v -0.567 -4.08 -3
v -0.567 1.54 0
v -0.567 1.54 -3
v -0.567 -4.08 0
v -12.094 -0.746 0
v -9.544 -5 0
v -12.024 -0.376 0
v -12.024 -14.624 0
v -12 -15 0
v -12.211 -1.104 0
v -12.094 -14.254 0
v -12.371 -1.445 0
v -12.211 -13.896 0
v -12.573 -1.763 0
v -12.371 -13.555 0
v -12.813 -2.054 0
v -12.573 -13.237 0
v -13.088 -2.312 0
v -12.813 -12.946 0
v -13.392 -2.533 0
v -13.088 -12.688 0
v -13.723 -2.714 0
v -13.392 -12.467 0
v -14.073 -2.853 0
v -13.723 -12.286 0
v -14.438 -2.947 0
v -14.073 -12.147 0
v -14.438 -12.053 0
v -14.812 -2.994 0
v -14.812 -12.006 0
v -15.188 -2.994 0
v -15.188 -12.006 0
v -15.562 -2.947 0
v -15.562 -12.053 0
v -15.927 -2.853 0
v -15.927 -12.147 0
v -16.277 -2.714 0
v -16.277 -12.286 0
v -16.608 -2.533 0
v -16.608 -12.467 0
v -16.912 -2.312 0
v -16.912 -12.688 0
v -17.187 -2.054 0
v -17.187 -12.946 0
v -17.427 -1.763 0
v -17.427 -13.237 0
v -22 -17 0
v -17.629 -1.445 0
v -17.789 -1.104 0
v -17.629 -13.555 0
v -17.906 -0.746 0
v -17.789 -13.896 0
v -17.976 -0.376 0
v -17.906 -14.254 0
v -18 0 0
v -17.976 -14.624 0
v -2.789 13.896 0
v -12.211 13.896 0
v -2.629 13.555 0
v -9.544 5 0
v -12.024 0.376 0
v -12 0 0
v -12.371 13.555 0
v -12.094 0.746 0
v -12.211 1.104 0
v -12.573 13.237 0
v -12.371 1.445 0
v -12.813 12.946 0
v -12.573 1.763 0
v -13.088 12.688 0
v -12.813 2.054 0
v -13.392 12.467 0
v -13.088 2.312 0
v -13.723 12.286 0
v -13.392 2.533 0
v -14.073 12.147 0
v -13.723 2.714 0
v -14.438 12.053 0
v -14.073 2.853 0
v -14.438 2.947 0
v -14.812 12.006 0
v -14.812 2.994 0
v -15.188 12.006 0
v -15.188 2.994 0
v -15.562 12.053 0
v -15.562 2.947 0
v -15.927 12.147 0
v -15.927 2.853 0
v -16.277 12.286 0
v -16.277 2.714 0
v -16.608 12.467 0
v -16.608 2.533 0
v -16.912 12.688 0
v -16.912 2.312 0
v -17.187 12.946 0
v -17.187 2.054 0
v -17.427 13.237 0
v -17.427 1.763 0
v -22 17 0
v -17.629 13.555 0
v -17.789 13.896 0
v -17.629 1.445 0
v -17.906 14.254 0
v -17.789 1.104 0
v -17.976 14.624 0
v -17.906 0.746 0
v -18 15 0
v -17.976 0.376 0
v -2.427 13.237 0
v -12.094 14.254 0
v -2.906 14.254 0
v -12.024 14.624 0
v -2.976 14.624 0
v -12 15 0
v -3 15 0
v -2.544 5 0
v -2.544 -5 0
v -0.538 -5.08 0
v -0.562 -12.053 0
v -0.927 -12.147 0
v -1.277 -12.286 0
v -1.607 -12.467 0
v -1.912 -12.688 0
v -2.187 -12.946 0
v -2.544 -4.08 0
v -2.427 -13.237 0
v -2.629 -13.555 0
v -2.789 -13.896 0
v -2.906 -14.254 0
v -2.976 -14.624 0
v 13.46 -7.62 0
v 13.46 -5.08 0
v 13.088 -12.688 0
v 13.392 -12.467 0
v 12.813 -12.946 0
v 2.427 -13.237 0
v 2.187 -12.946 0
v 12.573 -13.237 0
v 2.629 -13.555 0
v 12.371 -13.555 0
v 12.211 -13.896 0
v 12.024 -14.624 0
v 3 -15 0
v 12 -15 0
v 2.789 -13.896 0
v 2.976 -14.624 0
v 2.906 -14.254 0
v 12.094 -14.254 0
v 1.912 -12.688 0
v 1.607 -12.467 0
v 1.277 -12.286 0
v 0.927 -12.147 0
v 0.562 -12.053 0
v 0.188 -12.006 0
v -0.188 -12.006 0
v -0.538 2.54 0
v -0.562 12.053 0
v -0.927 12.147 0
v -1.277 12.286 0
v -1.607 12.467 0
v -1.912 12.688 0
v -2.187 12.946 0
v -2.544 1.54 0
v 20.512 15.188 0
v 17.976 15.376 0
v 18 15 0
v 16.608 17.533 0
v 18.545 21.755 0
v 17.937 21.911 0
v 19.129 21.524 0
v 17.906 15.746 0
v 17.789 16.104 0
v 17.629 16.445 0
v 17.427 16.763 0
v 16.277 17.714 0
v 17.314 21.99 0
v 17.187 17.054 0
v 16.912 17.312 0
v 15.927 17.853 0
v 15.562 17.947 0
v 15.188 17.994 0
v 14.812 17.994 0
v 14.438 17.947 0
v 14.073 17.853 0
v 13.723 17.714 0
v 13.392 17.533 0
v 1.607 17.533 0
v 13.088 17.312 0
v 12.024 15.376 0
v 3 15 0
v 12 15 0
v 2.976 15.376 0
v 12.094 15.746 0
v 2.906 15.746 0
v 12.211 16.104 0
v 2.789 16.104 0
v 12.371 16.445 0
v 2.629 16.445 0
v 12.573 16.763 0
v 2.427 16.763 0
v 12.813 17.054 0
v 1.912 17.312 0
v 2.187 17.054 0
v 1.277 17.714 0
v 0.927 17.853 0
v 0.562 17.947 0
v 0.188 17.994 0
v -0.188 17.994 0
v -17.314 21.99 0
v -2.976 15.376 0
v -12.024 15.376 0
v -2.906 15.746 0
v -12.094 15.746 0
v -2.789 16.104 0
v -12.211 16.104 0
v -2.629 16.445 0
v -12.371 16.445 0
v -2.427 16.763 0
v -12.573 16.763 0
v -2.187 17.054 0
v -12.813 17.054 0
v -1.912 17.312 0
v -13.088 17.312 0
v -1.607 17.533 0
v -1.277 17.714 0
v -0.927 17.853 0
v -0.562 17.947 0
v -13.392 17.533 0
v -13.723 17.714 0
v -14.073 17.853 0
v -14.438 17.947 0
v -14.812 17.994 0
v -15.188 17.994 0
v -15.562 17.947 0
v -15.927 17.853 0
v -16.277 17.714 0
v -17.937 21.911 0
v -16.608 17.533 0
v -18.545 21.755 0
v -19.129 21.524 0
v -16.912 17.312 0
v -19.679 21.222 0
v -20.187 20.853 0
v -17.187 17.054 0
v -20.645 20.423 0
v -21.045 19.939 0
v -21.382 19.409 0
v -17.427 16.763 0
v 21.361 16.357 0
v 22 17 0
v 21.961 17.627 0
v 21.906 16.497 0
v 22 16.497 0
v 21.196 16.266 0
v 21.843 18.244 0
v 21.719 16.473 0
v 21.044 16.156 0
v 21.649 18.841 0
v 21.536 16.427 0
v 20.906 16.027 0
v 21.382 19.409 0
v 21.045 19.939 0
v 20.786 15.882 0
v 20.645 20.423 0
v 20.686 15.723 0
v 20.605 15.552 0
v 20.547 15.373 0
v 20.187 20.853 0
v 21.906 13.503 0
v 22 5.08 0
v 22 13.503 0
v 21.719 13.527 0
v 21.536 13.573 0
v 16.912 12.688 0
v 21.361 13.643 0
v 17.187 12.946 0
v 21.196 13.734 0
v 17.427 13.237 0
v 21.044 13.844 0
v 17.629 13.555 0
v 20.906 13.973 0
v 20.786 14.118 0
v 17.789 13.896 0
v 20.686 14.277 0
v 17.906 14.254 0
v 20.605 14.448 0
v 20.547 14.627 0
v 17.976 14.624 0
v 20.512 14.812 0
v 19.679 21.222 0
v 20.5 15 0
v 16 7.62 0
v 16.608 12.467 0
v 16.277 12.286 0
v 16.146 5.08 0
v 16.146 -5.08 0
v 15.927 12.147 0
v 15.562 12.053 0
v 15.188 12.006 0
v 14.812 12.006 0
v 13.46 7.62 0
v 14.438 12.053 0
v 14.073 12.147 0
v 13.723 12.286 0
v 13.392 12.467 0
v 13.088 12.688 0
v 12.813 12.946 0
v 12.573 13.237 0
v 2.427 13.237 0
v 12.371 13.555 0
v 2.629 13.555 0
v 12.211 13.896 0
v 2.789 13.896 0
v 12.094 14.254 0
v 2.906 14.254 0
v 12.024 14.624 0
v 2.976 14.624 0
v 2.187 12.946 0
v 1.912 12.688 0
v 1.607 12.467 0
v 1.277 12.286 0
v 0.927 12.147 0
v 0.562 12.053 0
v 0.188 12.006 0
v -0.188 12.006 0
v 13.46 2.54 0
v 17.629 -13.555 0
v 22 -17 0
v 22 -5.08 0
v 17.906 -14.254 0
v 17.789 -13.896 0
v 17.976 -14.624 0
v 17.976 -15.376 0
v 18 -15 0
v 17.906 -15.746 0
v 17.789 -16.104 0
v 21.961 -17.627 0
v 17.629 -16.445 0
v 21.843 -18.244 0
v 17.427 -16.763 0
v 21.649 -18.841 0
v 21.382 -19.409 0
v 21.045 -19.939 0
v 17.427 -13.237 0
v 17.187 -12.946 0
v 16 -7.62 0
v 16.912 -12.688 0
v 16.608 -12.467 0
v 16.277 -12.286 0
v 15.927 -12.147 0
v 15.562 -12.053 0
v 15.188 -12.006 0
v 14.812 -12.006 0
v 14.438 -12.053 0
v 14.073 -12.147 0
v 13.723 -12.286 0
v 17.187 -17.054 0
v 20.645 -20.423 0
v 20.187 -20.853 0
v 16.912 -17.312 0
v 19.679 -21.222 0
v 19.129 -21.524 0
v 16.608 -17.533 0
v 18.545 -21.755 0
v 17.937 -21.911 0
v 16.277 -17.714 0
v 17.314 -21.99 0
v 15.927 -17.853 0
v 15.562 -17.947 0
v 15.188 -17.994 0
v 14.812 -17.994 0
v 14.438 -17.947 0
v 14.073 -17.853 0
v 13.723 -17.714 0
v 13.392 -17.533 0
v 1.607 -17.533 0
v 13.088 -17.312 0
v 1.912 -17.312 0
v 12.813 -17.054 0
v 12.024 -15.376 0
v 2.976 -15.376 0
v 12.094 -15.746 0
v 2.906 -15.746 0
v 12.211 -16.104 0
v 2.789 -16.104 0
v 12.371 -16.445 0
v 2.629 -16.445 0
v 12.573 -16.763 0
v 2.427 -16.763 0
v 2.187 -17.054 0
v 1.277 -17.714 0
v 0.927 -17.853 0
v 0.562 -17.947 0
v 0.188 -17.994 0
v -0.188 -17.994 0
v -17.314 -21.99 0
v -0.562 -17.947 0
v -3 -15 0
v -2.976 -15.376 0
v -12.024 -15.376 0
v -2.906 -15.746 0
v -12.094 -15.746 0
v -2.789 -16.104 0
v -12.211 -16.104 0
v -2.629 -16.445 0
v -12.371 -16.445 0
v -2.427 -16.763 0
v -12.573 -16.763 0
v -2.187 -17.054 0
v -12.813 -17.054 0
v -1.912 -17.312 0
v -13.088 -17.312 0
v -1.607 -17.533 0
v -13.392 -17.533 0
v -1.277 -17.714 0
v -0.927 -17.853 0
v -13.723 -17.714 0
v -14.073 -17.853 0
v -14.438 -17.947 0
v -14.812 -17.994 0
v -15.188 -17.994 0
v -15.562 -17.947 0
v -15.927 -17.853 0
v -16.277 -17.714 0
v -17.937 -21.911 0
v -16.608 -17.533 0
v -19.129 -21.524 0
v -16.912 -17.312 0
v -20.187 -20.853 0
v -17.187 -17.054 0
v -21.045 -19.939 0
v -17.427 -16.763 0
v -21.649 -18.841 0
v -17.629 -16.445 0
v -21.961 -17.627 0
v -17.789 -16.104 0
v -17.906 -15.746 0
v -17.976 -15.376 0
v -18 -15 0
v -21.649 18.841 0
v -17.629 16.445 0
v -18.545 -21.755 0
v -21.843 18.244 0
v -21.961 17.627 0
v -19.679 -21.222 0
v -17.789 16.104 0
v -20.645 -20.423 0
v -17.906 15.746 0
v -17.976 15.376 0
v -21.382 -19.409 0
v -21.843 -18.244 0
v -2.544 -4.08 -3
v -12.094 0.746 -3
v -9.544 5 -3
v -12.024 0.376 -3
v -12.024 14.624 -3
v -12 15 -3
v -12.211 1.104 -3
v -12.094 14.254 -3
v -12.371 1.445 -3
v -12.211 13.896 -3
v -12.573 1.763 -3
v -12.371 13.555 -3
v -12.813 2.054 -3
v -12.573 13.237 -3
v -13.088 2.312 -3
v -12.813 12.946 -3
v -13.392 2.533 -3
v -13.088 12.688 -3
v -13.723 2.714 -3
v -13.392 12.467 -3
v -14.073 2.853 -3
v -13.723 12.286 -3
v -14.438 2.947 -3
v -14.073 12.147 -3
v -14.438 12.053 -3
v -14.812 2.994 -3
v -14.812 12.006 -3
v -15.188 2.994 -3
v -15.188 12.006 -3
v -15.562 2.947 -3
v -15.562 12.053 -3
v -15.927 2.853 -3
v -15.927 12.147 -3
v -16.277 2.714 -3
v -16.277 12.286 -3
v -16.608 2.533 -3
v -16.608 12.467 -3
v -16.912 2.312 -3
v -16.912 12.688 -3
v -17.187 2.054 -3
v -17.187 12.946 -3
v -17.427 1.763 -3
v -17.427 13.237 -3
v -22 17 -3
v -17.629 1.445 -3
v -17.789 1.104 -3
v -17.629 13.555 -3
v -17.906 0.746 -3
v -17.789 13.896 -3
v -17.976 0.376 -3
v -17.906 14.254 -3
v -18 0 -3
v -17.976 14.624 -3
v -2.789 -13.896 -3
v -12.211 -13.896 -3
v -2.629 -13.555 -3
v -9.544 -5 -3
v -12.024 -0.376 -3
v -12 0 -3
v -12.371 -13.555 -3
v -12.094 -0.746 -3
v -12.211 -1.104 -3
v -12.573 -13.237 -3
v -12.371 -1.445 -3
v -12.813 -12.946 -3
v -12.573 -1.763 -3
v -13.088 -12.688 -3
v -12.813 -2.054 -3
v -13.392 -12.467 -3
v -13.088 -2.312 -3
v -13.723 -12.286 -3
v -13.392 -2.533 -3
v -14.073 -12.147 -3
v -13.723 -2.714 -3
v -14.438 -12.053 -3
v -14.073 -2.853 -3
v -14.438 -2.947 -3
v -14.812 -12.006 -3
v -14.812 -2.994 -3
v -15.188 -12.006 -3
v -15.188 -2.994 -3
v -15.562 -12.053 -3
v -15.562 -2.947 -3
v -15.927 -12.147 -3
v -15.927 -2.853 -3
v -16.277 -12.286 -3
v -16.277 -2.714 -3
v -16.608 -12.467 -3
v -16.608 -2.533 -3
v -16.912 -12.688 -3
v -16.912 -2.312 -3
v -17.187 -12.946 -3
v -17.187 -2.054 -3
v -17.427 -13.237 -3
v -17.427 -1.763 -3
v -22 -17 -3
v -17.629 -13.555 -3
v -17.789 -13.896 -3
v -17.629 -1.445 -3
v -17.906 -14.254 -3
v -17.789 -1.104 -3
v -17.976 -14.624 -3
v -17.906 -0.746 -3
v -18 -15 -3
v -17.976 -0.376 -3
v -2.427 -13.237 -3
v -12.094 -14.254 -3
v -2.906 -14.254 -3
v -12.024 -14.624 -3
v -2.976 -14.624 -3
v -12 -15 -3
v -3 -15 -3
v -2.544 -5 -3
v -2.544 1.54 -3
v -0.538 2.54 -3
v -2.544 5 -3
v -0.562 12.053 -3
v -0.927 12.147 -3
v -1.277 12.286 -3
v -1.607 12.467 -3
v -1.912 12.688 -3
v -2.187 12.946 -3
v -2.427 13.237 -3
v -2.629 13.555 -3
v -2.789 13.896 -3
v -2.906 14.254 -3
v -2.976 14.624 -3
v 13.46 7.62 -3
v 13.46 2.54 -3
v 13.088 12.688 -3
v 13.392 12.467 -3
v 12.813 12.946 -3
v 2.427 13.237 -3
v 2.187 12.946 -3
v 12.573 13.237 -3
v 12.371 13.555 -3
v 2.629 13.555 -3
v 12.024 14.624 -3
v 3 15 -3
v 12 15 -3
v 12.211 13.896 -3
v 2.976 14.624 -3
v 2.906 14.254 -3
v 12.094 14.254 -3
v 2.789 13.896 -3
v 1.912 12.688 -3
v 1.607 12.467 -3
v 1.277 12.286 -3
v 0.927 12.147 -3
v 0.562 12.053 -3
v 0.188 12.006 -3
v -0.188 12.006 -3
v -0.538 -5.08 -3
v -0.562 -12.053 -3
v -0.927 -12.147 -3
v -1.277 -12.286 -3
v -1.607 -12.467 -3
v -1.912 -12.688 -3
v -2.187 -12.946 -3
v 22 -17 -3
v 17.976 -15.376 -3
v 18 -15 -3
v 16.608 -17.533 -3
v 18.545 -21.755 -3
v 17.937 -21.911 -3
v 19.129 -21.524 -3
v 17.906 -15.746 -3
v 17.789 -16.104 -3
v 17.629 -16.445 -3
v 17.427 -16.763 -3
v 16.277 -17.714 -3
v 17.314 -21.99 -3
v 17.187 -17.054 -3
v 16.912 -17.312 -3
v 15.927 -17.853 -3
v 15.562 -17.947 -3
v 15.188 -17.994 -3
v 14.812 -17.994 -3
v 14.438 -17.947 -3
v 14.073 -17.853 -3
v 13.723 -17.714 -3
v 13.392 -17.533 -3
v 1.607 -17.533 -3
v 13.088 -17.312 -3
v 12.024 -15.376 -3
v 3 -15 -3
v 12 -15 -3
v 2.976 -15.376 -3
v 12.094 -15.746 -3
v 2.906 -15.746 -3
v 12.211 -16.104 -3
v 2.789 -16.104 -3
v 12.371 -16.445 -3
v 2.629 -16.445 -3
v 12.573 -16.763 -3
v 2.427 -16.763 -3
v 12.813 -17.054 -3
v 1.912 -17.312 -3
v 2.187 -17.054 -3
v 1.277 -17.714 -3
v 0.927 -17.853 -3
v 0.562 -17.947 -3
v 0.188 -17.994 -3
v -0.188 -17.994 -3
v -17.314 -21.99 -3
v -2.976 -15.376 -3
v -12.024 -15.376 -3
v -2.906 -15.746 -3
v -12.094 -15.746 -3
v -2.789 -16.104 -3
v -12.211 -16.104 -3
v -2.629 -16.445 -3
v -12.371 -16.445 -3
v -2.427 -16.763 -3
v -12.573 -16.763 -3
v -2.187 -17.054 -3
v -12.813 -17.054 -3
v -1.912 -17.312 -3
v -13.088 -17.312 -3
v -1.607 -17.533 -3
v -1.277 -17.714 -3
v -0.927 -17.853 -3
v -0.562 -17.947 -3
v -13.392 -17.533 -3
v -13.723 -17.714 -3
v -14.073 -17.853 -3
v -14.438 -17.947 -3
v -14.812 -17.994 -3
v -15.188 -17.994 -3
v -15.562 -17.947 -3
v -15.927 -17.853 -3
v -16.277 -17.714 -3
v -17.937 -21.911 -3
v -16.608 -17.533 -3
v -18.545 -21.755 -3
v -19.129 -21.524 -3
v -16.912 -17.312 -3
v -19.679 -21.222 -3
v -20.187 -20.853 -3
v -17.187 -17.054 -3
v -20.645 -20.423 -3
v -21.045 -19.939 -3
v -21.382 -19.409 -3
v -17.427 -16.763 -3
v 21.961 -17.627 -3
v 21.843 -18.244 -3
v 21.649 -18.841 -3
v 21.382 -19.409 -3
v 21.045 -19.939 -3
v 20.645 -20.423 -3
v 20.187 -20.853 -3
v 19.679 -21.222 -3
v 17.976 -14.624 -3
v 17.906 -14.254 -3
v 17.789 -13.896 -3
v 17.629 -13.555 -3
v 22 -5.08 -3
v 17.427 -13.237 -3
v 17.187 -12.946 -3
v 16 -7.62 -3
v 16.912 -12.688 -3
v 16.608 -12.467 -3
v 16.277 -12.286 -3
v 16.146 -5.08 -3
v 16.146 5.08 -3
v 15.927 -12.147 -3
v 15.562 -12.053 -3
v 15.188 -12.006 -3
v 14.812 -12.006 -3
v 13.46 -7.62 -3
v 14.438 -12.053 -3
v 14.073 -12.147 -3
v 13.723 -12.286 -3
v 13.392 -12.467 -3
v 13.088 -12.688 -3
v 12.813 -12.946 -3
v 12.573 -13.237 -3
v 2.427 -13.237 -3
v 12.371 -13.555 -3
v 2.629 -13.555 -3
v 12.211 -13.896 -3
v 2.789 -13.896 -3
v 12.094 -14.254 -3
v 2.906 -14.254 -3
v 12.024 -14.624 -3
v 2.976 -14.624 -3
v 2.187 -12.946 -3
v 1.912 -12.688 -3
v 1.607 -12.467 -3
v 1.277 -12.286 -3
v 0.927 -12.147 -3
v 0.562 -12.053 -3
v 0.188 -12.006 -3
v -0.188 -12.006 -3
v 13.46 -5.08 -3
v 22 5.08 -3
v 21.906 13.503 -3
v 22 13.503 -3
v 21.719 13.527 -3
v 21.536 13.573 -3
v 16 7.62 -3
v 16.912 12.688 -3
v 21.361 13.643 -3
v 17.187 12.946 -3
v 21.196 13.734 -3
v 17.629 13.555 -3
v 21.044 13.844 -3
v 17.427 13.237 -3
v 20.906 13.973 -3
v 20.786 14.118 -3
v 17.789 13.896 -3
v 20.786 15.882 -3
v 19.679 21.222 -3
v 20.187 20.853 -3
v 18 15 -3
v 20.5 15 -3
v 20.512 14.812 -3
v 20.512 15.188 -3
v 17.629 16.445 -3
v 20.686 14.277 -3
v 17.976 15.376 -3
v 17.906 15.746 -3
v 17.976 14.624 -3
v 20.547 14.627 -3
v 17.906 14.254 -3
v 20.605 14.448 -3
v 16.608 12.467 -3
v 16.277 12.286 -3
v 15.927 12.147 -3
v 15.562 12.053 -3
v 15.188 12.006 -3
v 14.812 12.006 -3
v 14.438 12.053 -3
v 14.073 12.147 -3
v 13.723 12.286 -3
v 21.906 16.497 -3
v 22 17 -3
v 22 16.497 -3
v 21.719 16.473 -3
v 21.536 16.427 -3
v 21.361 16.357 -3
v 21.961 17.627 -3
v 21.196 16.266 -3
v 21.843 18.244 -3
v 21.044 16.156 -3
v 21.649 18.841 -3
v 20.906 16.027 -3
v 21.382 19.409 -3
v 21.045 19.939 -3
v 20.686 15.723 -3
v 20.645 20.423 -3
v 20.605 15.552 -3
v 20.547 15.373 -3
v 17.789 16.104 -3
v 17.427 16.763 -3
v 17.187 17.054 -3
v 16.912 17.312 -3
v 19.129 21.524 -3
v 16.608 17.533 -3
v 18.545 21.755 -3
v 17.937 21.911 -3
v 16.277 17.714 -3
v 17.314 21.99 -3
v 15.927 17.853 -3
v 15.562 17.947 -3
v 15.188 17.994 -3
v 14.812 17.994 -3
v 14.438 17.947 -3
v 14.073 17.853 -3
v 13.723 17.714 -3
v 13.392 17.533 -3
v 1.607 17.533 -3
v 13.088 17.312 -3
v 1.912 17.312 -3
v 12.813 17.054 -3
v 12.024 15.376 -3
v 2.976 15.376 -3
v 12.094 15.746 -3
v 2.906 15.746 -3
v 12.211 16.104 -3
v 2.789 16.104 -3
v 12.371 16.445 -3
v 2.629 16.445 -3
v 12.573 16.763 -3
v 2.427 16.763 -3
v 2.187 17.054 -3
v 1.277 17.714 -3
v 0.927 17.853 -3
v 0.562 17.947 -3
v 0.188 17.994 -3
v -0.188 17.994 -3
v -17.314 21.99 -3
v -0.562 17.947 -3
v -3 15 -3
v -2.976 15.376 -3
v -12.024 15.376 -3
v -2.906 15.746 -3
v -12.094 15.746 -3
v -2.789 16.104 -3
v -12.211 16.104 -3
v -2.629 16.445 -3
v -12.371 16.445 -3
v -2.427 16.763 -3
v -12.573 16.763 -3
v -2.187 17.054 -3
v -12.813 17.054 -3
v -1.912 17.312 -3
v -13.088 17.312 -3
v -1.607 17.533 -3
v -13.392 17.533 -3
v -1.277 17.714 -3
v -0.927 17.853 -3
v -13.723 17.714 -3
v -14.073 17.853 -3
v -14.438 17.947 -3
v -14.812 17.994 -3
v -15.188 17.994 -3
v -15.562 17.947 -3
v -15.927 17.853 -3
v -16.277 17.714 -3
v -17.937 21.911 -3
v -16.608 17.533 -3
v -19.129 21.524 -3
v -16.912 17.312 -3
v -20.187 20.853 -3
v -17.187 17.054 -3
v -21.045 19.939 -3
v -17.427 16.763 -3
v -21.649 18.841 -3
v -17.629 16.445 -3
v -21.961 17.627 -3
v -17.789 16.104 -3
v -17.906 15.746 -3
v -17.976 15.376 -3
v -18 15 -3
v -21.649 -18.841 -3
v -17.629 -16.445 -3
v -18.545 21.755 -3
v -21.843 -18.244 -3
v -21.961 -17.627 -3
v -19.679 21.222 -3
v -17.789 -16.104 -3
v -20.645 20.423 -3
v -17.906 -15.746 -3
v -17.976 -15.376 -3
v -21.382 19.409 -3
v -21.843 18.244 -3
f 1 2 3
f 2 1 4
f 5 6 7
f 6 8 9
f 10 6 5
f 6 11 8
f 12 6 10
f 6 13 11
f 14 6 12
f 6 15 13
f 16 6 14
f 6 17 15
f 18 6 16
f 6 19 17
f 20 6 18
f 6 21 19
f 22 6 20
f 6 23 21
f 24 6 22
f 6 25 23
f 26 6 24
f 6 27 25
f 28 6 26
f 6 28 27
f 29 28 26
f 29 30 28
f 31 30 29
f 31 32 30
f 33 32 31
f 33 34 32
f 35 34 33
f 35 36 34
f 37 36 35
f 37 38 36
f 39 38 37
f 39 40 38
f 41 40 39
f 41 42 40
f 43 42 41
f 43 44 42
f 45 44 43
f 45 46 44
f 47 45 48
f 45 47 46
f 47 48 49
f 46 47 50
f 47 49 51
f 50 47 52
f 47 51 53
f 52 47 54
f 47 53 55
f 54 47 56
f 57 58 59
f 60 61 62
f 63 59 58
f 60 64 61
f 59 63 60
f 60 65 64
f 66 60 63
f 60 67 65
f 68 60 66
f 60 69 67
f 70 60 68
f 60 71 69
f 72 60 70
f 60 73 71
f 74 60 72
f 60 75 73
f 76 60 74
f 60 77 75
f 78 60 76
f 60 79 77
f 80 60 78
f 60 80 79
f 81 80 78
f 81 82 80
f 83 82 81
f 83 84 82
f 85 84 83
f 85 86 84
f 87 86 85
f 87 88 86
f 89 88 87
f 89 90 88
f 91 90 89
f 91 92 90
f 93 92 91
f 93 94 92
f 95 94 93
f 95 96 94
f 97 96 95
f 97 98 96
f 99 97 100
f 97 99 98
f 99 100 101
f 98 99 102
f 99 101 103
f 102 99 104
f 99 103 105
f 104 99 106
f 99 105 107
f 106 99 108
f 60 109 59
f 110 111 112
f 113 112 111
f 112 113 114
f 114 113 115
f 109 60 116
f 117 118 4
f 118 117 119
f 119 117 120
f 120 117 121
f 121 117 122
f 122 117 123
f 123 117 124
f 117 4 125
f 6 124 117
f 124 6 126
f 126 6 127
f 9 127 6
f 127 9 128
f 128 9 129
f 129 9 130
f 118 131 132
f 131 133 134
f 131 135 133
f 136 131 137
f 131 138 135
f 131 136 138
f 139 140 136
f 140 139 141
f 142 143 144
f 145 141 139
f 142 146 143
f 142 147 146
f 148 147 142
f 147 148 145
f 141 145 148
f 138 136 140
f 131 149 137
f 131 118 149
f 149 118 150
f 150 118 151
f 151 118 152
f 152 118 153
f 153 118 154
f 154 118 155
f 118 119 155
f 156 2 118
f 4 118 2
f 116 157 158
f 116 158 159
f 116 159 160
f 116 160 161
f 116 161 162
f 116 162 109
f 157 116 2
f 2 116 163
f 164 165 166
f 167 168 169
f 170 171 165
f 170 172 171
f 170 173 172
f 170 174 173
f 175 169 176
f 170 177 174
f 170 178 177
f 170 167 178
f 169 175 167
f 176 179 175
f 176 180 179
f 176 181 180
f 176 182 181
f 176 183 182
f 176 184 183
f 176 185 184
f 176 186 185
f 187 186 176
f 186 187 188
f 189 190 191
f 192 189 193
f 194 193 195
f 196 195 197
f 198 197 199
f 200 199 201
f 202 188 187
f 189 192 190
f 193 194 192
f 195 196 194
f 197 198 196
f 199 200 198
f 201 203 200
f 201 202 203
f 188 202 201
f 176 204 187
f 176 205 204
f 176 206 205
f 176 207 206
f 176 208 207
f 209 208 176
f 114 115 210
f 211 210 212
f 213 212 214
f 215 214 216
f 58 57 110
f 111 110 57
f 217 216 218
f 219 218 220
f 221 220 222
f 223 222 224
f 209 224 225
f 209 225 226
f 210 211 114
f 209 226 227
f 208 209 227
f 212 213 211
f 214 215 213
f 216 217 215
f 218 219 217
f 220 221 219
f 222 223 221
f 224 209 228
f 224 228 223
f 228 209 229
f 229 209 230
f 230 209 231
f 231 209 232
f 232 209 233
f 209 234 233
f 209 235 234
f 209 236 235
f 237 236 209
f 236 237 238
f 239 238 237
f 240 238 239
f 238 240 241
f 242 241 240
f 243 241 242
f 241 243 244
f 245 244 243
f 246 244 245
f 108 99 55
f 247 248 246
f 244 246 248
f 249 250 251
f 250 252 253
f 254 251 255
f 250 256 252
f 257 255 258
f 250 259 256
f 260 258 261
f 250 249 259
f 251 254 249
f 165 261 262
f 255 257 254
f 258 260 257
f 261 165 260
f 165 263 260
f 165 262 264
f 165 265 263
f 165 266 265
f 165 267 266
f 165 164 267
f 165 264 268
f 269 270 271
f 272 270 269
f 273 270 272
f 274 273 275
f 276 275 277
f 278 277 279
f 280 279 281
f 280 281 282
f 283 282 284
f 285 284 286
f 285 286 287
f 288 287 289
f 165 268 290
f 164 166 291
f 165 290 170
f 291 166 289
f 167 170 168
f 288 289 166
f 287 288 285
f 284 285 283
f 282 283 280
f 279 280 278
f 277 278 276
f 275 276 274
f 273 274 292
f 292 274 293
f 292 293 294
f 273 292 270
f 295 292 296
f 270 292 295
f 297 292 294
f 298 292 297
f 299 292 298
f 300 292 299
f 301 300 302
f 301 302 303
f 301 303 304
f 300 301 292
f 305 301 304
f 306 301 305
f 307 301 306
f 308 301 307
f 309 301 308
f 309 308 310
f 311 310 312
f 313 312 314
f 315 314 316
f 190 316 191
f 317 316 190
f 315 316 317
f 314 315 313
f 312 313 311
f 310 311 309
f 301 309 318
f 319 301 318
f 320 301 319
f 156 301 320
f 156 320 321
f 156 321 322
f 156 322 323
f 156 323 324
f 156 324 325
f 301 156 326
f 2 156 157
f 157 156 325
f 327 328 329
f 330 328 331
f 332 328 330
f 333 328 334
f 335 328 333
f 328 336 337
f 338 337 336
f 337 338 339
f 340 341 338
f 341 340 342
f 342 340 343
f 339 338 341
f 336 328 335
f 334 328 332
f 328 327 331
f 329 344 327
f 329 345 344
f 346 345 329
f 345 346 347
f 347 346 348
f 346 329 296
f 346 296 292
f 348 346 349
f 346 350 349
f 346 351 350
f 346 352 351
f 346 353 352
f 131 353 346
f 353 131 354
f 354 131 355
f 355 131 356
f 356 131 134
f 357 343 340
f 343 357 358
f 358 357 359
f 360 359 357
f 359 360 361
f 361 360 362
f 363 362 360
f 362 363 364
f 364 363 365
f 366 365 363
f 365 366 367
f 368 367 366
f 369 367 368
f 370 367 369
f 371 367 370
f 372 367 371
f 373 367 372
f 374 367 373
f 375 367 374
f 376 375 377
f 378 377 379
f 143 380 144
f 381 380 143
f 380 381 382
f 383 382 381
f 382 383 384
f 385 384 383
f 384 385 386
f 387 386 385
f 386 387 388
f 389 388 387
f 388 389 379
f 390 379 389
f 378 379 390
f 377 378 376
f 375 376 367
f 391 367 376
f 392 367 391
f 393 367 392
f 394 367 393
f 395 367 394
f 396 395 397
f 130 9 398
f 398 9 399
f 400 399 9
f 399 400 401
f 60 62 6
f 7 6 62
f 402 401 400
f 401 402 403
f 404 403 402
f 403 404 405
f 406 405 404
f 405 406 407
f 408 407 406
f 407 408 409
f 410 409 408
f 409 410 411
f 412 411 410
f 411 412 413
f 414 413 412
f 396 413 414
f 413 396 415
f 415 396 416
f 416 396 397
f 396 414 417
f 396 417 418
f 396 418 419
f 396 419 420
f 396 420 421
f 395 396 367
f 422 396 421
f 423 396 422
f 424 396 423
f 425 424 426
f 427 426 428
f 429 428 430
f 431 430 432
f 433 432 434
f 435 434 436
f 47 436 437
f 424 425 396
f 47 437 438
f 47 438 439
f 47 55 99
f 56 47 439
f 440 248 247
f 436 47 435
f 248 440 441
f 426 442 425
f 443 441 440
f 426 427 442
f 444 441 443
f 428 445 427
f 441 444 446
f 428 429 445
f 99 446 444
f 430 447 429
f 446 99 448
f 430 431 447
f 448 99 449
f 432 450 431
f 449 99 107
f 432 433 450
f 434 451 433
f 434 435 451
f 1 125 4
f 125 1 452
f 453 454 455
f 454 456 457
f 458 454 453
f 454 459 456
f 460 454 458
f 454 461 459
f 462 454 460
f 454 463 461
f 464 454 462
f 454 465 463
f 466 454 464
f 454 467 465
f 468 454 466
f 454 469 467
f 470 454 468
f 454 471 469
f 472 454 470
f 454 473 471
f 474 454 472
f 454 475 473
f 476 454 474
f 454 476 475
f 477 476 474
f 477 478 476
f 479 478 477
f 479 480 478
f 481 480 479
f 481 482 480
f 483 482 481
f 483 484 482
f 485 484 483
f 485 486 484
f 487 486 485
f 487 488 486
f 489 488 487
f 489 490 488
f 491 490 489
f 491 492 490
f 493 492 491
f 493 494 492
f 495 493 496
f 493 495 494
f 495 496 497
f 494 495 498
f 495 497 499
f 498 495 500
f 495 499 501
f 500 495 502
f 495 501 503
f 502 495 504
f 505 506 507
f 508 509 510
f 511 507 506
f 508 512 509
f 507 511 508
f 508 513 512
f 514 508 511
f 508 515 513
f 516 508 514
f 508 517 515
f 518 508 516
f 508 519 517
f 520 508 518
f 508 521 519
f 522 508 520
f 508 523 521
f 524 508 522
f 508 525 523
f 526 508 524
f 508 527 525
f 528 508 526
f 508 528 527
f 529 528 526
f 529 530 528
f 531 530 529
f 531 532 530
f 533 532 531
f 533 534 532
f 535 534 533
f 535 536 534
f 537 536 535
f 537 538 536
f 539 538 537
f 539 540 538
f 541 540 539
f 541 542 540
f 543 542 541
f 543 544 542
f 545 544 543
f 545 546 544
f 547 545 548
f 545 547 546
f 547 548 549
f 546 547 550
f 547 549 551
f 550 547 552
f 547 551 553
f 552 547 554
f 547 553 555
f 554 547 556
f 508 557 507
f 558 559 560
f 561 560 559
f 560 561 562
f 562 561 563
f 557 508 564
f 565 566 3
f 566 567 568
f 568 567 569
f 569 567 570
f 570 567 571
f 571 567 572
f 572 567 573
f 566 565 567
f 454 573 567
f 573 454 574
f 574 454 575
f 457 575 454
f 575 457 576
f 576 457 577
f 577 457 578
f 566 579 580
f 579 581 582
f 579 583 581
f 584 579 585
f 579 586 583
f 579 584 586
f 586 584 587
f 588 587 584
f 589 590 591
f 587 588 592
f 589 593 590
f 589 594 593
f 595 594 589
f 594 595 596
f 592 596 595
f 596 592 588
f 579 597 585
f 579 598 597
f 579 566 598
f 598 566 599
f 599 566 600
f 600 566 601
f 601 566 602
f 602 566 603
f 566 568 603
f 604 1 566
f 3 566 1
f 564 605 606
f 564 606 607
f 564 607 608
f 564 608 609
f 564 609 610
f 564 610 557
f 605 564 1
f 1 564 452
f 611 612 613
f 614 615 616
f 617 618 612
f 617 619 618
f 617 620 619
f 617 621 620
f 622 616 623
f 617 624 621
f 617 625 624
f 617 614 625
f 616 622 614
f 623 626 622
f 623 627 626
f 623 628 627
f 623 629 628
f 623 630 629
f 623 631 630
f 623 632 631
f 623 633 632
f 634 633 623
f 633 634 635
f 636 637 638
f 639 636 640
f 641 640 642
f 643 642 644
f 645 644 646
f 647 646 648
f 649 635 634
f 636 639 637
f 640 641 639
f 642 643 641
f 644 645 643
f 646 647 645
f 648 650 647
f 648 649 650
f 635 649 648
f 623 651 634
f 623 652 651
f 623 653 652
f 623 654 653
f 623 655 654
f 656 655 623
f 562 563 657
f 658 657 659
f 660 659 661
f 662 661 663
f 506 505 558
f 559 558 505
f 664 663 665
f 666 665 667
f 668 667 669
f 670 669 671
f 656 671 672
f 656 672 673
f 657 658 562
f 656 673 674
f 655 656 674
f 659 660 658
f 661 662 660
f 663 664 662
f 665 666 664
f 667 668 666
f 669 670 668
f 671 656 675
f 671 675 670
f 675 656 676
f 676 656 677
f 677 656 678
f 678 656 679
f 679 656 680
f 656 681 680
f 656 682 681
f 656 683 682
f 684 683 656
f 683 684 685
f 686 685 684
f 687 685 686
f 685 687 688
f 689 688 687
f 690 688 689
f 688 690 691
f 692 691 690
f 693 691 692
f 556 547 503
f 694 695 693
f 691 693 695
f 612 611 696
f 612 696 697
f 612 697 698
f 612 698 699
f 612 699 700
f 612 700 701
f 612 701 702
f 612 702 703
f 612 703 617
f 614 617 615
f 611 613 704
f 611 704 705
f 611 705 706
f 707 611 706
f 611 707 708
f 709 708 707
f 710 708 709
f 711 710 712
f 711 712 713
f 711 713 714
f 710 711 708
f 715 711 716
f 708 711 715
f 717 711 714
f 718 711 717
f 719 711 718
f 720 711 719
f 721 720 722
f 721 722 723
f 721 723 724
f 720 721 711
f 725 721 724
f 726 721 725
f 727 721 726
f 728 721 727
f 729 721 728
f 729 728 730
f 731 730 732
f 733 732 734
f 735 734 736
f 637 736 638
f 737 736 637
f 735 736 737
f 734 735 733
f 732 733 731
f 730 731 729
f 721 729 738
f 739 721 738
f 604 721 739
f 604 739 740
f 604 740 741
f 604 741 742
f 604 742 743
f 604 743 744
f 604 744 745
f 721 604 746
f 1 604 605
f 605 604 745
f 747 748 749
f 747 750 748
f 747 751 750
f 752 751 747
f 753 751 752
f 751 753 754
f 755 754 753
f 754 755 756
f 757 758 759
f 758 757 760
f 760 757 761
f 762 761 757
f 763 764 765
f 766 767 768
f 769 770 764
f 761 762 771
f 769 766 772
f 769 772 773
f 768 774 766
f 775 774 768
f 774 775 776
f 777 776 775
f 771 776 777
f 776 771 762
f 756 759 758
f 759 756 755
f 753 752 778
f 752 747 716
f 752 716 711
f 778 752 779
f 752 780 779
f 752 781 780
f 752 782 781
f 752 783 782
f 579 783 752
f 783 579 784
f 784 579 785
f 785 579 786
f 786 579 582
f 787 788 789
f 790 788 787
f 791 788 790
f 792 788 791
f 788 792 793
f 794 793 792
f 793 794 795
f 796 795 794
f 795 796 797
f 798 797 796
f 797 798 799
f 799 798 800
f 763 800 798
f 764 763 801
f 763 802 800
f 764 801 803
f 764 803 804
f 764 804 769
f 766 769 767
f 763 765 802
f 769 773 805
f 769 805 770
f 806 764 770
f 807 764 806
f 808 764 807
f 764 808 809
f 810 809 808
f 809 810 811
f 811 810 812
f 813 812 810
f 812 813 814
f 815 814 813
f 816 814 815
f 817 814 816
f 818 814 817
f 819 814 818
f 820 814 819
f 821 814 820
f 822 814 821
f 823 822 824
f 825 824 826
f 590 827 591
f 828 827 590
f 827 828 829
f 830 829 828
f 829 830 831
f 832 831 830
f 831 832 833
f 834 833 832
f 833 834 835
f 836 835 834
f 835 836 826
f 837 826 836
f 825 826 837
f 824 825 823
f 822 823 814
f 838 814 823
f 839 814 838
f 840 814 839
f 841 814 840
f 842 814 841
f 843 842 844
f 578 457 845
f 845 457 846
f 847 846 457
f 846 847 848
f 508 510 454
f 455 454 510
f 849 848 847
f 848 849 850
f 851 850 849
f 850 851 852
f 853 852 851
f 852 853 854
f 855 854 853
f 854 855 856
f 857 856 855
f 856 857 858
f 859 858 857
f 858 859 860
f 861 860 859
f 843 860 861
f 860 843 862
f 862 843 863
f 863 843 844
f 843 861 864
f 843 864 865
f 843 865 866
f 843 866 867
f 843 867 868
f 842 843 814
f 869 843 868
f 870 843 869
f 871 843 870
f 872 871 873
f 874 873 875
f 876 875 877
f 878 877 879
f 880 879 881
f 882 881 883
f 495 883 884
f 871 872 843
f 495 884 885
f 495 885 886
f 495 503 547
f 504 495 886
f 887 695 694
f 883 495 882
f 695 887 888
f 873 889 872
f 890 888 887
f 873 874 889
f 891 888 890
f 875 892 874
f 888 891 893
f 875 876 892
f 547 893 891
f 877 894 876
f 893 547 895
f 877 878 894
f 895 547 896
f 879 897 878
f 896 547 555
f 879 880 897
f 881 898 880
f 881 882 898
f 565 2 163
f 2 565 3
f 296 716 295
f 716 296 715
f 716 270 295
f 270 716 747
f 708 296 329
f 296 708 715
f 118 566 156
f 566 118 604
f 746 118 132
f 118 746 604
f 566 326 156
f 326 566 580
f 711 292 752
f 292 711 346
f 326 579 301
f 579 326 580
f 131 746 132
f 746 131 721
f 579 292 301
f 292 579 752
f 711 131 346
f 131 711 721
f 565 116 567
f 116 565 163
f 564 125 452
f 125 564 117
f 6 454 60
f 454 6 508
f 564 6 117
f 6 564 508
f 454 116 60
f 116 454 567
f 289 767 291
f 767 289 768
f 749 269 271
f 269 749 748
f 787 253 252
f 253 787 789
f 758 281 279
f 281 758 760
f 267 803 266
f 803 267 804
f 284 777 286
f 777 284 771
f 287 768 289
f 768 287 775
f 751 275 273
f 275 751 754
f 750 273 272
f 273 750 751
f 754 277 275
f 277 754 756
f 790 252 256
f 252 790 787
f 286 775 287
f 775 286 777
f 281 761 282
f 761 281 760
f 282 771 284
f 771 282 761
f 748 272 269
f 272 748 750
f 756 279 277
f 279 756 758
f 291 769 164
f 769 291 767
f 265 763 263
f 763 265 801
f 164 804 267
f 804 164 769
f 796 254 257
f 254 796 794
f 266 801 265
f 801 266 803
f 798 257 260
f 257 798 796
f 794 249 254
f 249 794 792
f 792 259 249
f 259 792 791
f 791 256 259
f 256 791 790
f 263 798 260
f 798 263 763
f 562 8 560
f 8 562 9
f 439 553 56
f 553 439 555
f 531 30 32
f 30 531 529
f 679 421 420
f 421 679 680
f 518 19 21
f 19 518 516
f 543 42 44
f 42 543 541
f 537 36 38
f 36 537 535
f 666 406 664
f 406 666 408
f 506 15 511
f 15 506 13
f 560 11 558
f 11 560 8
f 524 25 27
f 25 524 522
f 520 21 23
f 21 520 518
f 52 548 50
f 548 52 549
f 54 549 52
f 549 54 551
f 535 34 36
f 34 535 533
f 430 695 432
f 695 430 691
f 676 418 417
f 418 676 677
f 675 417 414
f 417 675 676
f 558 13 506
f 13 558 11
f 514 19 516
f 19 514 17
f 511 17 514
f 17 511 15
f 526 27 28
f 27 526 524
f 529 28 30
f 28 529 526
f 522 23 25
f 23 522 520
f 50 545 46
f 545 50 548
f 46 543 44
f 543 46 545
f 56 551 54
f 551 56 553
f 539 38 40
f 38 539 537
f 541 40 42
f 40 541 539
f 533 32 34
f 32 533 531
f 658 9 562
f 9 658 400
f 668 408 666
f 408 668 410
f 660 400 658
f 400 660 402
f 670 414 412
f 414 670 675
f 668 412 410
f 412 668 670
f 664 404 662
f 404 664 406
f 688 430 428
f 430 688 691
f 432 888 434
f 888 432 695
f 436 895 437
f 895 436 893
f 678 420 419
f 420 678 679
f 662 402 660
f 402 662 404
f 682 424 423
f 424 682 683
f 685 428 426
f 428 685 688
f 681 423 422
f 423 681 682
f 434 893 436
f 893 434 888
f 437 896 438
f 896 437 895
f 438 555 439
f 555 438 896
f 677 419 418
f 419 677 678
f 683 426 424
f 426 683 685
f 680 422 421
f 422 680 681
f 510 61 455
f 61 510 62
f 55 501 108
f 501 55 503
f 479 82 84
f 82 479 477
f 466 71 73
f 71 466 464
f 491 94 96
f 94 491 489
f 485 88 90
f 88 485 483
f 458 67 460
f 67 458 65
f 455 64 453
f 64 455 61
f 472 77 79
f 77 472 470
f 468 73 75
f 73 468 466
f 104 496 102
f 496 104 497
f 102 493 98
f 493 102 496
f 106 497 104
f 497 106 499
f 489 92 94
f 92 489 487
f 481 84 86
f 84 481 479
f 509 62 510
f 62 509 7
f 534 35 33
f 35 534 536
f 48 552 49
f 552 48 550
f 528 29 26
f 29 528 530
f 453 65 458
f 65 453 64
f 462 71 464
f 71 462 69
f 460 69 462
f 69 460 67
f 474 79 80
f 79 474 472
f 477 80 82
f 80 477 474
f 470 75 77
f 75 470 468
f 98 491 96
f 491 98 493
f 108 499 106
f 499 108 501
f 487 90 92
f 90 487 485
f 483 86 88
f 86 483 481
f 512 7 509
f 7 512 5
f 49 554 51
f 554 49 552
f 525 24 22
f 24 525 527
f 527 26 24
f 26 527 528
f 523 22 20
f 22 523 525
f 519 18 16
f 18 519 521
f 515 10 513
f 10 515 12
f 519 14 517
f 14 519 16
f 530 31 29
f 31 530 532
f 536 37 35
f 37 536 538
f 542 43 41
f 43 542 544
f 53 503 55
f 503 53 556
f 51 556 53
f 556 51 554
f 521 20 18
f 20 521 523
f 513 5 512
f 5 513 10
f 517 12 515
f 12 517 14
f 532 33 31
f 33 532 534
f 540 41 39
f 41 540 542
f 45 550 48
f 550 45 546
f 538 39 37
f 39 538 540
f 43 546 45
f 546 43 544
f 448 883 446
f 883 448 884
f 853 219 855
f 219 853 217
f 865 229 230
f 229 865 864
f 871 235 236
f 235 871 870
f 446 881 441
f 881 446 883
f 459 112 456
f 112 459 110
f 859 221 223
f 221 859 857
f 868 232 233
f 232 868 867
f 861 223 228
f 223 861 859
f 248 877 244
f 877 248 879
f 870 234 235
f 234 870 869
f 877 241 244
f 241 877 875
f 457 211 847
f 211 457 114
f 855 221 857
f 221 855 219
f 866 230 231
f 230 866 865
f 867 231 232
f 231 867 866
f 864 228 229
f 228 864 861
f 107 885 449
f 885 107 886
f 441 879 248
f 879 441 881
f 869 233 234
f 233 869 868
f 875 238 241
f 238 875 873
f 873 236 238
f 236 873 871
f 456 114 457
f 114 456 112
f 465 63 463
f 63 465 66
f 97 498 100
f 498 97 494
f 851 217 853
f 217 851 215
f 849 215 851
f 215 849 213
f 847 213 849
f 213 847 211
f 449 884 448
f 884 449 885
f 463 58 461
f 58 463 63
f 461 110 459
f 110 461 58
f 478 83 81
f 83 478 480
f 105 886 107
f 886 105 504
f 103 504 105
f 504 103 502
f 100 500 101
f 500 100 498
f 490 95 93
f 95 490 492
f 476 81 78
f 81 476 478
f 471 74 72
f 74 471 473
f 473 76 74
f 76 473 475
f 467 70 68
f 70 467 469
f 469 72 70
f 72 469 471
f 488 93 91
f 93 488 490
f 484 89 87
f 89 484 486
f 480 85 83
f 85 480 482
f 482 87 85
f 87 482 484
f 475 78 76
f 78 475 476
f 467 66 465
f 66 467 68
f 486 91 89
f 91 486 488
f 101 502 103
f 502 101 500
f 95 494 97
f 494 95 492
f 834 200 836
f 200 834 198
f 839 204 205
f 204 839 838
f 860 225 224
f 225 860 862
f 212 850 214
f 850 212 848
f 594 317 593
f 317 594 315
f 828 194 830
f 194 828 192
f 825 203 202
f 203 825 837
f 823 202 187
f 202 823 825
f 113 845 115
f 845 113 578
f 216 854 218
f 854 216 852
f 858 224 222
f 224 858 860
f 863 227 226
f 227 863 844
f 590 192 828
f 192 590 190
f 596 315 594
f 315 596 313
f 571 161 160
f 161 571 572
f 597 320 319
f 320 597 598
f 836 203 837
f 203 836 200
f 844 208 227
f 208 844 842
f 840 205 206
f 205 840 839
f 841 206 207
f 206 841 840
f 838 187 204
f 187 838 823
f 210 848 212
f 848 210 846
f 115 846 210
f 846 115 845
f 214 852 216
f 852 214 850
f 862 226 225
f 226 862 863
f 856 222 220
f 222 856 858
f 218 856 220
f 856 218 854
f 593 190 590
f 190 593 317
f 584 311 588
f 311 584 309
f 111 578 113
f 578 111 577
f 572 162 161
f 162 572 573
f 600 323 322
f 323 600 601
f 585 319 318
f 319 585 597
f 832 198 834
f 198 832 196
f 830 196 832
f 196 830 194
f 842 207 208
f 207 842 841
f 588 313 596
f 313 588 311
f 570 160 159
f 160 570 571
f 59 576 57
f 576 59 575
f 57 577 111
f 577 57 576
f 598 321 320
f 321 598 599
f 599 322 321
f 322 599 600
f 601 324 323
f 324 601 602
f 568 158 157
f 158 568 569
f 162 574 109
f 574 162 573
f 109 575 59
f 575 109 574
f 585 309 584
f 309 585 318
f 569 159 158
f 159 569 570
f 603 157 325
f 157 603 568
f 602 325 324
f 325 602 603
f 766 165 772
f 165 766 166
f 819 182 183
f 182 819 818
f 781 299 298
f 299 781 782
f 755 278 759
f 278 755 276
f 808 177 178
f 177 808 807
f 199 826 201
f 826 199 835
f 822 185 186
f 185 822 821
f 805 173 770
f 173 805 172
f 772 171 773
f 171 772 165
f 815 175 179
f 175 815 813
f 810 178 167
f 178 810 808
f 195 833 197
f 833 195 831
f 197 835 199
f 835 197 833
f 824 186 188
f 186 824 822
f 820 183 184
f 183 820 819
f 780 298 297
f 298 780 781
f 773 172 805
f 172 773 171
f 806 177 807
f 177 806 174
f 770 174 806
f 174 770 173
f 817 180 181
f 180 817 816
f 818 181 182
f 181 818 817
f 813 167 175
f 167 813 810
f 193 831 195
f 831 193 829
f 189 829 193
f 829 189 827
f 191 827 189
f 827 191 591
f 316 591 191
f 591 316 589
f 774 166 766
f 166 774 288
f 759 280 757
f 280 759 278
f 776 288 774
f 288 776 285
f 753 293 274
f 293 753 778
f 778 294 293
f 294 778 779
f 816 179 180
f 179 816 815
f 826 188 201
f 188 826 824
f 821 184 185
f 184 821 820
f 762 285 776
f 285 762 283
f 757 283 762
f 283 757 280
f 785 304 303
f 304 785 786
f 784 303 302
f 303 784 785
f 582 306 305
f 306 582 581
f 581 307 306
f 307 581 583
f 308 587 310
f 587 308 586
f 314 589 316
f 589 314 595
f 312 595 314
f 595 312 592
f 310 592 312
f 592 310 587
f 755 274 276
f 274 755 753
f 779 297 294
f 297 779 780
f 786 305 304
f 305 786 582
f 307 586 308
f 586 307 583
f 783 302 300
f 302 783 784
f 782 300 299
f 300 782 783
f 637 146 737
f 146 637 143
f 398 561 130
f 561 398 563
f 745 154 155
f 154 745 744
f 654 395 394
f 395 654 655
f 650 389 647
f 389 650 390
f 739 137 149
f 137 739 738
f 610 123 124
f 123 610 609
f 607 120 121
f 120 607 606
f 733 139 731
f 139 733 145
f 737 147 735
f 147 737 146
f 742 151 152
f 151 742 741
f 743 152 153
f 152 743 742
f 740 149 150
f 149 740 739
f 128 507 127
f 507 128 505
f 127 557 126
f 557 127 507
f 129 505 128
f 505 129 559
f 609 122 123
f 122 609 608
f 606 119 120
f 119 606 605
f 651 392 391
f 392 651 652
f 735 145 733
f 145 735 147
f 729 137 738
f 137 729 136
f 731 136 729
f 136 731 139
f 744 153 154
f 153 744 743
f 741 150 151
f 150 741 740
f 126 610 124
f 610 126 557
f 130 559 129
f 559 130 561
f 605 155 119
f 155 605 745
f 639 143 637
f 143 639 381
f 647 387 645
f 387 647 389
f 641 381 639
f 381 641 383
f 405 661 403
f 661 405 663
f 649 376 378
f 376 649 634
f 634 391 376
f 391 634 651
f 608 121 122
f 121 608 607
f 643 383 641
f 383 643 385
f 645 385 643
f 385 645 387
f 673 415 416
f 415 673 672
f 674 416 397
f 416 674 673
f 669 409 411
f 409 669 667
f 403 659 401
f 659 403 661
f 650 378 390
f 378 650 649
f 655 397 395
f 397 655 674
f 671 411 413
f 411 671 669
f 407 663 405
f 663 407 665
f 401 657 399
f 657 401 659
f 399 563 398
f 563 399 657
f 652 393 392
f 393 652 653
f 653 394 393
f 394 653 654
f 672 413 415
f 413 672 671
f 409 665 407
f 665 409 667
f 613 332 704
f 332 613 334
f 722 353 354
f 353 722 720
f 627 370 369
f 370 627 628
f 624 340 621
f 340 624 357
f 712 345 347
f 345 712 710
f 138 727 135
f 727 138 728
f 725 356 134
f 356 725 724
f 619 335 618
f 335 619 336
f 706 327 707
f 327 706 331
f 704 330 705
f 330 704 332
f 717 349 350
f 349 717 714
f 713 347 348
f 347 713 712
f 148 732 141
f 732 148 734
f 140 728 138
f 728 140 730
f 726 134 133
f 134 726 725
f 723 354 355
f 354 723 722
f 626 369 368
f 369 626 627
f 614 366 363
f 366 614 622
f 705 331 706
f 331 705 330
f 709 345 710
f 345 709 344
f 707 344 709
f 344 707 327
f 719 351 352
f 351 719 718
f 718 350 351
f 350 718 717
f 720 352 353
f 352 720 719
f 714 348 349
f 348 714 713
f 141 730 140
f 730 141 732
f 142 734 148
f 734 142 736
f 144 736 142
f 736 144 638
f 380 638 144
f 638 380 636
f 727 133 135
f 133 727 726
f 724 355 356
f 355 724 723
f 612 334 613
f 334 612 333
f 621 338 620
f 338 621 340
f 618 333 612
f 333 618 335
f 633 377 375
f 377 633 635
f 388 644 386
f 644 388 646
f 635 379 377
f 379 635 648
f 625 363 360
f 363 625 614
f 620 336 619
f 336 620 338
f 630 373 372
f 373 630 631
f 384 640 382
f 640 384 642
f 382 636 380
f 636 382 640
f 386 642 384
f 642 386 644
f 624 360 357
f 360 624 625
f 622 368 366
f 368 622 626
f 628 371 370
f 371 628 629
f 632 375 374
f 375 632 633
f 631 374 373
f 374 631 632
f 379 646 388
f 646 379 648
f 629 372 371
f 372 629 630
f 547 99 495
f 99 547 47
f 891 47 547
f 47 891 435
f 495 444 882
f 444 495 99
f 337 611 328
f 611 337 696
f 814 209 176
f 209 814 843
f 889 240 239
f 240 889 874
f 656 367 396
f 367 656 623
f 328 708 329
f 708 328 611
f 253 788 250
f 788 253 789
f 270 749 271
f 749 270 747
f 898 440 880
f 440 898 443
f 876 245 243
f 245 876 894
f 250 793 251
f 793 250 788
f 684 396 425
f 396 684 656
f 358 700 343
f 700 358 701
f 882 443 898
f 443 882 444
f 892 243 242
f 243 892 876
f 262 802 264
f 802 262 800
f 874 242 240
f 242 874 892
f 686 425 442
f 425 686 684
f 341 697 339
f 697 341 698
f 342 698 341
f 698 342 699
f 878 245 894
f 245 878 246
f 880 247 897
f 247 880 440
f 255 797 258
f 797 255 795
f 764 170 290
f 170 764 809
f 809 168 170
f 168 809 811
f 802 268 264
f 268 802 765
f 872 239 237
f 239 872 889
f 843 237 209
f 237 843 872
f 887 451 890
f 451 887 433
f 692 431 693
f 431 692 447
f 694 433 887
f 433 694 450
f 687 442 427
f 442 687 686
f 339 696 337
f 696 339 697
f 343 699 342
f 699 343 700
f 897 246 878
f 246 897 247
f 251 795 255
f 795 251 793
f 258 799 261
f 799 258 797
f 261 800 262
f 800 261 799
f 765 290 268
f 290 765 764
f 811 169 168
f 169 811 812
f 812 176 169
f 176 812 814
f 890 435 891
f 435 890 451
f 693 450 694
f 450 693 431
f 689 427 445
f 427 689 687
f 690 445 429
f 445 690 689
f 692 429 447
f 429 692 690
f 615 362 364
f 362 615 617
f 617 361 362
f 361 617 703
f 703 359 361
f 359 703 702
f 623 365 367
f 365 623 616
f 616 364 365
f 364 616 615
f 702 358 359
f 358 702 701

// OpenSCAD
$fn = 50;


difference() {
	union() {
		translate(v = [0, 0, -3]) {
			hull() {
				translate(v = [-17.0000000000, 17.0000000000, 0]) {
					cylinder(h = 3, r = 5);
				}
				translate(v = [17.0000000000, 17.0000000000, 0]) {
					cylinder(h = 3, r = 5);
				}
				translate(v = [-17.0000000000, -17.0000000000, 0]) {
					cylinder(h = 3, r = 5);
				}
				translate(v = [17.0000000000, -17.0000000000, 0]) {
					cylinder(h = 3, r = 5);
				}
			}
		}
	}
	union() {
		translate(v = [22.5000000000, 0, -3]) {
			rotate(a = [0, 0, 180]) {
				difference() {
					union() {
						#translate(v = [23.0670000000, -1.5400000000, 0]) {
							cube(size = [5, 5.6200000000, 3]);
						}
						#translate(v = [0.3540000000, -5.0800000000, 0]) {
							cube(size = [6, 10.1600000000, 3]);
						}
						#translate(v = [9.0380000000, -2.5400000000, 0]) {
							cube(size = [14, 7.6200000000, 3]);
						}
						#translate(v = [6.5000000000, -7.6200000000, 0]) {
							cube(size = [2.5400000000, 15.2400000000, 3]);
						}
						#translate(v = [25.0440000000, -5.0000000000, 0]) {
							cube(size = [7, 10, 3]);
						}
						#translate(v = [0.5000000000, -15, 0.0000000000]) {
							cylinder(h = 3, r = 1.5000000000);
						}
					}
					union();
				}
			}
		}
		translate(v = [-15.0000000000, -15.0000000000, -50.0000000000]) {
			cylinder(h = 100, r = 3.0000000000);
		}
		translate(v = [-15.0000000000, 0.0000000000, -50.0000000000]) {
			cylinder(h = 100, r = 3.0000000000);
		}
		translate(v = [-15.0000000000, 15.0000000000, -50.0000000000]) {
			cylinder(h = 100, r = 3.0000000000);
		}
		translate(v = [-15.0000000000, 15.0000000000, -50.0000000000]) {
			cylinder(h = 100, r = 3.0000000000);
		}
		translate(v = [0.0000000000, 15.0000000000, -50.0000000000]) {
			cylinder(h = 100, r = 3.0000000000);
		}
		translate(v = [15.0000000000, 15.0000000000, -50.0000000000]) {
			cylinder(h = 100, r = 3.0000000000);
		}
		translate(v = [-15.0000000000, -15.0000000000, -50.0000000000]) {
			cylinder(h = 100, r = 3.0000000000);
		}
		translate(v = [0.0000000000, -15.0000000000, -50.0000000000]) {
			cylinder(h = 100, r = 3.0000000000);
		}
		translate(v = [15.0000000000, -15.0000000000, -50.0000000000]) {
			cylinder(h = 100, r = 3.0000000000);
		}
	}
}
